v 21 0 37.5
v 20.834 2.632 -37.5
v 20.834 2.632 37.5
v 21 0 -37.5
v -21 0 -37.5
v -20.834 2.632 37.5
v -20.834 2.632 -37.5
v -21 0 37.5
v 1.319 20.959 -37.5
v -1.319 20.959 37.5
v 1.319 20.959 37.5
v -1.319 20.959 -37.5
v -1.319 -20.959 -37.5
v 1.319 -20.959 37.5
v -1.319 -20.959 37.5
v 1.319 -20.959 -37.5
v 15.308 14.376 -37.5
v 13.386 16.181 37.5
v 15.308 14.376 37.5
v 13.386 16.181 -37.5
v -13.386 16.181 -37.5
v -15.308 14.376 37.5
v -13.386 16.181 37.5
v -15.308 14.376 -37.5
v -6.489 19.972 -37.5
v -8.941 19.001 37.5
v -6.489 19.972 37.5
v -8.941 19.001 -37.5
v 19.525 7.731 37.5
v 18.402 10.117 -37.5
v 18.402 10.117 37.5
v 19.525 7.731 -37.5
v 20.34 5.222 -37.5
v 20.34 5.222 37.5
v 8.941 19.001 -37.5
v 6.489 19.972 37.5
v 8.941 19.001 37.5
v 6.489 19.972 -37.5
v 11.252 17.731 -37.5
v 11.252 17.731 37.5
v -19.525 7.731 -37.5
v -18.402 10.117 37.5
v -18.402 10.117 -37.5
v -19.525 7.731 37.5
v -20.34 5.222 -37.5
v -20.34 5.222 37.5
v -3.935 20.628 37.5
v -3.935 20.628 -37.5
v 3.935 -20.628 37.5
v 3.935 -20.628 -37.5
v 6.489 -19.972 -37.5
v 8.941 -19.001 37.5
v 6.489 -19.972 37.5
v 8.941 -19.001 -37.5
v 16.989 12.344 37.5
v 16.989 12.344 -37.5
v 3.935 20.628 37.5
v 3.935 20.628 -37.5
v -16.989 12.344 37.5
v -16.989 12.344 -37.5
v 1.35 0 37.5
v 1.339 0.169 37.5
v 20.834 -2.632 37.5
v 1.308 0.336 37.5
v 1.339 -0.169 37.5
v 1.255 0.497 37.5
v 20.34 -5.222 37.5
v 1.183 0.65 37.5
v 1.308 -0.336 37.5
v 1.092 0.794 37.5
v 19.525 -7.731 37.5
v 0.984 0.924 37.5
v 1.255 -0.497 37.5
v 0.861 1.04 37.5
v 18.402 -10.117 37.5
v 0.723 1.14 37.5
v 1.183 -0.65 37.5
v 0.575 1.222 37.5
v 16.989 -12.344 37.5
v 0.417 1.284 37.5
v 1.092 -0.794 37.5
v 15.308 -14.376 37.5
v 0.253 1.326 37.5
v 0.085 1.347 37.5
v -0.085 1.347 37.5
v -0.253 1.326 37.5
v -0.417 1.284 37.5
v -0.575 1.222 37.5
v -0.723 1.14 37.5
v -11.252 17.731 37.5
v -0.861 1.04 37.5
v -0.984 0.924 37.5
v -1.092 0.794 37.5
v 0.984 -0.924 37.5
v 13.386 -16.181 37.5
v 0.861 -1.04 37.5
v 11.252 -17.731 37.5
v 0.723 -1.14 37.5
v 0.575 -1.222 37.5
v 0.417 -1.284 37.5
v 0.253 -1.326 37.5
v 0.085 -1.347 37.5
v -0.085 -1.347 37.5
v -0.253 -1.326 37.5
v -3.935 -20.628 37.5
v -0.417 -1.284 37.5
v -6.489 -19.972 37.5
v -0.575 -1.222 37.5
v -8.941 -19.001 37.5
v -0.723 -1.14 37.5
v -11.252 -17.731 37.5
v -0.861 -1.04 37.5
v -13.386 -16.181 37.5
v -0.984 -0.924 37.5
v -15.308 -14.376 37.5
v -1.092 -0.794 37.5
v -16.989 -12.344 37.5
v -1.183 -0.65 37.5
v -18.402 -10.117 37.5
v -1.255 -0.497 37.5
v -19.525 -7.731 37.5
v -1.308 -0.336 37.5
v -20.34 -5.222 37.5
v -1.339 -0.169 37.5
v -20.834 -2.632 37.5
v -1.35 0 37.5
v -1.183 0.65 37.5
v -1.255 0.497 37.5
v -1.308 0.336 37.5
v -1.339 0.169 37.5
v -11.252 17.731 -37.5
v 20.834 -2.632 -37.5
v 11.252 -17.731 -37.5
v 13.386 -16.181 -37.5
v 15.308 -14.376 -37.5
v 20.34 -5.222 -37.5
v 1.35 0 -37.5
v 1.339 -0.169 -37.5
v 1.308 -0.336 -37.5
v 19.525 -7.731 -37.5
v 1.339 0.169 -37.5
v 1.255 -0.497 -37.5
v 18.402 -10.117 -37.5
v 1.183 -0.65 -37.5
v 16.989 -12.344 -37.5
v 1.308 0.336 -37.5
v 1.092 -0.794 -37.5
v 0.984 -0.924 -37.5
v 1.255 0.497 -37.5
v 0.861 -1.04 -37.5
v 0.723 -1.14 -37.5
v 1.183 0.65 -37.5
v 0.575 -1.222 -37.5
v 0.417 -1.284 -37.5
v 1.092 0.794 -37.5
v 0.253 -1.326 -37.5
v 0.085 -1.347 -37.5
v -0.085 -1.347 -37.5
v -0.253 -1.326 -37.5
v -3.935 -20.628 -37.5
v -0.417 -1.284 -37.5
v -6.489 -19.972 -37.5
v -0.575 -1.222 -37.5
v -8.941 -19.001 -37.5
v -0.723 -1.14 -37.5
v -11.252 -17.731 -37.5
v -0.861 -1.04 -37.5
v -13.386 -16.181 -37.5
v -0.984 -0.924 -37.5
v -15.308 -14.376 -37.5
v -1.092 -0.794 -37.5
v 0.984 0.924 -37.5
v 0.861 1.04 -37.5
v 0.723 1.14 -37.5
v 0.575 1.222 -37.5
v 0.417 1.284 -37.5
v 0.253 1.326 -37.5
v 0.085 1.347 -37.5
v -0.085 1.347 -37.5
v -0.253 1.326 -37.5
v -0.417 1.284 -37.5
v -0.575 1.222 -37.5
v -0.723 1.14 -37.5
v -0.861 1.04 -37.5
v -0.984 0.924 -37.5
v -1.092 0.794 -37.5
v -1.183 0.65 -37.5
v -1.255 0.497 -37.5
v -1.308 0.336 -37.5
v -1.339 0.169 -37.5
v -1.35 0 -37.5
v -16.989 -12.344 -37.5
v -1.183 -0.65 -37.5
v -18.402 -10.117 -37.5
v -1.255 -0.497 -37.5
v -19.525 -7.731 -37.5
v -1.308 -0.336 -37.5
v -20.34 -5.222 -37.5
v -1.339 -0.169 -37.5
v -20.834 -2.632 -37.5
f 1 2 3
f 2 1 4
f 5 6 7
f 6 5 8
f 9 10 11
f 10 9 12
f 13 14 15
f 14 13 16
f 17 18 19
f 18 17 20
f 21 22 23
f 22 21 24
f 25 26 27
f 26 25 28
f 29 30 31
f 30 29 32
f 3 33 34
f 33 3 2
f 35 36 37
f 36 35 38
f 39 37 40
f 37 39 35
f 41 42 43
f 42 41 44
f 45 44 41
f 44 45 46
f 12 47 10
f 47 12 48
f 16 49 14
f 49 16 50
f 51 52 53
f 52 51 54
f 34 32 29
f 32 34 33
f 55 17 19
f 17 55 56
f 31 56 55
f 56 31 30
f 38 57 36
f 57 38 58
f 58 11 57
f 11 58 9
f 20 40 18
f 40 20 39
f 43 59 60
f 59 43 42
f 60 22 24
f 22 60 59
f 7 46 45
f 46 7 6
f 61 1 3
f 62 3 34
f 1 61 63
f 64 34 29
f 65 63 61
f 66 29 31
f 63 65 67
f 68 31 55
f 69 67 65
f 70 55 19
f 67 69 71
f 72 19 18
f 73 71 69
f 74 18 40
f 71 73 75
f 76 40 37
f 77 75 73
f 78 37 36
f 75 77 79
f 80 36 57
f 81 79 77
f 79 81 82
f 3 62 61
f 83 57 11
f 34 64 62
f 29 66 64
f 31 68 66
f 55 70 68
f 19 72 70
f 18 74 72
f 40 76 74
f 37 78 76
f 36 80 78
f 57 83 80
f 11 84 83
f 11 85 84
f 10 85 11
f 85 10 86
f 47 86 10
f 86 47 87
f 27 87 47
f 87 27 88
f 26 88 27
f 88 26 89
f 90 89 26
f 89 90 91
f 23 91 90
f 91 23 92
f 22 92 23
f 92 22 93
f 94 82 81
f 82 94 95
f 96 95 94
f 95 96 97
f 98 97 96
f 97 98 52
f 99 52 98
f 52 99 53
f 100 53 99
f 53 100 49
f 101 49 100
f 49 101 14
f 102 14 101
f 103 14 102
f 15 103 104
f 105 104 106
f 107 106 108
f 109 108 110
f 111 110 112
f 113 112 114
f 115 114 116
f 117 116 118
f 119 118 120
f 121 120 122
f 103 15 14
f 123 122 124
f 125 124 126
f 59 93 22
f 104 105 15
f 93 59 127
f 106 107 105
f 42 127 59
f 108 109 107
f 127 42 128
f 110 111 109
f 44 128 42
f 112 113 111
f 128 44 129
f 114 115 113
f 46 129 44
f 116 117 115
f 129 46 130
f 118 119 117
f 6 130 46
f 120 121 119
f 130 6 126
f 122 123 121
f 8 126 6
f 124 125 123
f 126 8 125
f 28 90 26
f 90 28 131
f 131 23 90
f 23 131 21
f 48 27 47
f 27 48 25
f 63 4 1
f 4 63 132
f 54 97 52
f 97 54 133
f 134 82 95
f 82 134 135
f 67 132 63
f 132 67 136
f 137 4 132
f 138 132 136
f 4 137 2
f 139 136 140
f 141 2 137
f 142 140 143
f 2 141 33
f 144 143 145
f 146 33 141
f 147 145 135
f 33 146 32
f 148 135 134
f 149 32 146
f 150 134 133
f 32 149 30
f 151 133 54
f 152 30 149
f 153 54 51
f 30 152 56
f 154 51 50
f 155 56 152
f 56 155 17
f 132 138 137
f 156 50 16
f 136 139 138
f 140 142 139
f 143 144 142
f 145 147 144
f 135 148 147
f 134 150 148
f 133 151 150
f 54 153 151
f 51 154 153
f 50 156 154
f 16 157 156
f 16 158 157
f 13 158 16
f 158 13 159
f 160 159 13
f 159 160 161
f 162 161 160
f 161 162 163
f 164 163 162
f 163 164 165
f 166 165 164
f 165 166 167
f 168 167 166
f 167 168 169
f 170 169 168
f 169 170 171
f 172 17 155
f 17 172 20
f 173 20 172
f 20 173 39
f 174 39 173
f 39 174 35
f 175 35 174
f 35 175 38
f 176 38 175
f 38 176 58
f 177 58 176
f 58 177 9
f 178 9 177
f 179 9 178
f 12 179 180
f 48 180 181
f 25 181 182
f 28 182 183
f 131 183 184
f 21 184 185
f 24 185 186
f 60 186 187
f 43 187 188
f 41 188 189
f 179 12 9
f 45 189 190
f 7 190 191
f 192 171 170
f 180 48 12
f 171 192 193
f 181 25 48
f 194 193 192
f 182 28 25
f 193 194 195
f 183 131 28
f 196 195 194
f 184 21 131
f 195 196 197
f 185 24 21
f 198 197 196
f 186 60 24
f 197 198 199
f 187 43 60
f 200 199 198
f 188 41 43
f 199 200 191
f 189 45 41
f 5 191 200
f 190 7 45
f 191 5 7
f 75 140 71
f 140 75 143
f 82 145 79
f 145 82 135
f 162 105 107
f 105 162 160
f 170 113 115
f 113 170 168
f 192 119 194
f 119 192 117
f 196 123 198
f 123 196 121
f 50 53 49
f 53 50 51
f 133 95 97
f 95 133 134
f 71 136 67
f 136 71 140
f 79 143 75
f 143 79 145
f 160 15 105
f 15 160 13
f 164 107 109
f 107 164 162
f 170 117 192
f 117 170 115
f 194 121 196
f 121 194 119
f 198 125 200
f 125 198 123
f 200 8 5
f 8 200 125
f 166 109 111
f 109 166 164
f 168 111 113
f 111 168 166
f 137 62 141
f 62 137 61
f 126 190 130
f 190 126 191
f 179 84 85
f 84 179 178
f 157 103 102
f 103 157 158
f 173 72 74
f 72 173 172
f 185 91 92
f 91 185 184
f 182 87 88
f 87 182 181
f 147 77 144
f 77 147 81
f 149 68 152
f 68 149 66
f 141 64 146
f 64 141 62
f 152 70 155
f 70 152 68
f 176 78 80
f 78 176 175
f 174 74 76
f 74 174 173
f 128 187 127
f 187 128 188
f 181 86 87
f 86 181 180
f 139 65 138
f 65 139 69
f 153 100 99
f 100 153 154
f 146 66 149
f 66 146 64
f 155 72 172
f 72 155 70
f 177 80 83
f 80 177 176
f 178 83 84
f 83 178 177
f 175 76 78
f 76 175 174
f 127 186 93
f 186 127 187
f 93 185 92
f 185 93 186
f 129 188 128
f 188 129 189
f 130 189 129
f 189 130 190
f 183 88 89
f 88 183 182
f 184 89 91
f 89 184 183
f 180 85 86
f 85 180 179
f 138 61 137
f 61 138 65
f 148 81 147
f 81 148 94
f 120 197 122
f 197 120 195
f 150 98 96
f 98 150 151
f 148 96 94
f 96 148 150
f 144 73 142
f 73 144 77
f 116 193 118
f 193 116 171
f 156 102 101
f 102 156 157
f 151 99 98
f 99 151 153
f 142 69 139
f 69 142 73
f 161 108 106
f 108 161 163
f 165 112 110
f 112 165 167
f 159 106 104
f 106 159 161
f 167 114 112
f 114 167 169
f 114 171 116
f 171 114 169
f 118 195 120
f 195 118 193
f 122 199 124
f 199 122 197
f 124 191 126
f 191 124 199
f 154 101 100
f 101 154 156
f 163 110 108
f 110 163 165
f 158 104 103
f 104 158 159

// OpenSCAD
$fn = 50;


difference() {
	union() {
		translate(v = [0, 0, -37.5000000000]) {
			cylinder(h = 75, r = 21.0000000000);
		}
	}
	union() {
		translate(v = [0, 0, -100.0000000000]) {
			cylinder(h = 200, r = 1.3500000000);
		}
	}
}
